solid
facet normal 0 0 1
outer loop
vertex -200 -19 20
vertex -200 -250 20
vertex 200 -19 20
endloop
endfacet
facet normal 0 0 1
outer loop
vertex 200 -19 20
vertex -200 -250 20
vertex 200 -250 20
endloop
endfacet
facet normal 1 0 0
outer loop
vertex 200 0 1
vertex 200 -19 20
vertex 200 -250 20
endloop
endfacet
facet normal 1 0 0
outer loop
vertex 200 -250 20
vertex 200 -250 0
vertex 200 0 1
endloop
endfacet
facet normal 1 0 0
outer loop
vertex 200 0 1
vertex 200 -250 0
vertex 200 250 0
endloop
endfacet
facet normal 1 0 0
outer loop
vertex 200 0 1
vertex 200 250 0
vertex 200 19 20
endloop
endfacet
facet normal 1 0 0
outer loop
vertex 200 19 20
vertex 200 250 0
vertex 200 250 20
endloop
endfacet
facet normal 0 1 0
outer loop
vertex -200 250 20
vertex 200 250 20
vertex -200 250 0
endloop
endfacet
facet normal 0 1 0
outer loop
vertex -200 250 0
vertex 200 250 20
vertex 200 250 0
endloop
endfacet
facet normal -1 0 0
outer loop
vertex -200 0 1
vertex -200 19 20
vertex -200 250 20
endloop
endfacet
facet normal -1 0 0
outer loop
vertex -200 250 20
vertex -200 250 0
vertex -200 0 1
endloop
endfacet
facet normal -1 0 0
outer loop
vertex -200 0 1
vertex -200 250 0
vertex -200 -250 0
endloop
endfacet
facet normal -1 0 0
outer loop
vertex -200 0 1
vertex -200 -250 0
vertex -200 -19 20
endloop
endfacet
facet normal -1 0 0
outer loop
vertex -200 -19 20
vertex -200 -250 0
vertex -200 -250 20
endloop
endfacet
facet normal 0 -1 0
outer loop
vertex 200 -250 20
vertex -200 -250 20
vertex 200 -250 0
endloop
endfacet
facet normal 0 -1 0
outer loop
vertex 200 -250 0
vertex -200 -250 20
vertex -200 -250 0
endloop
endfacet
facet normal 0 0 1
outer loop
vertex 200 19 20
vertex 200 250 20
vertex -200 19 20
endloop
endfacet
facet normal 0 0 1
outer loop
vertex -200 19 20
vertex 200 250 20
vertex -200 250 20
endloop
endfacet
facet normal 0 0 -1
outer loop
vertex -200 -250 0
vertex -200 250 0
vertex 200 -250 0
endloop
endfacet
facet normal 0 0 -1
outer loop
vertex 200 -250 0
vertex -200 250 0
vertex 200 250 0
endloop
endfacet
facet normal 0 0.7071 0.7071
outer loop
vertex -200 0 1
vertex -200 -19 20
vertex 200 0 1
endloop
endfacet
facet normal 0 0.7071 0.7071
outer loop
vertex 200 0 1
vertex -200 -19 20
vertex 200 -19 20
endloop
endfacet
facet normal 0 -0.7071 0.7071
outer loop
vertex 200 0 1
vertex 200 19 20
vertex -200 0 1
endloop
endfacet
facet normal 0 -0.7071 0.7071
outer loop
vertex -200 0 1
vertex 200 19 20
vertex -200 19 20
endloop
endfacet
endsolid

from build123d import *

# Parameters (mm, degrees)
SKETCH1_W           = 400
SKETCH1_H           = 500
BOSS_EXTRUDE1_DEPTH = 20
CUT_EXTRUDE2_DEPTH  = 473.122865365


with BuildPart() as part:
    # Sketch1 → Boss-Extrude1 (new body)
    with BuildSketch(Plane.XY):
        Rectangle(SKETCH1_W, SKETCH1_H)
    extrude(amount=BOSS_EXTRUDE1_DEPTH)

    # Sketch2 → Cut-Extrude2 (cut, through all)
    with BuildSketch(Plane(origin=(200, 0, 0), x_dir=(0, 0, -1), z_dir=(1, 0, 0))):
        Polygon((-1, 0), (-20.657237149, 19.657237149), (-20.657237149, -19.657237149), align=None)
    extrude(amount=-CUT_EXTRUDE2_DEPTH, mode=Mode.SUBTRACT)


solid = part.part
